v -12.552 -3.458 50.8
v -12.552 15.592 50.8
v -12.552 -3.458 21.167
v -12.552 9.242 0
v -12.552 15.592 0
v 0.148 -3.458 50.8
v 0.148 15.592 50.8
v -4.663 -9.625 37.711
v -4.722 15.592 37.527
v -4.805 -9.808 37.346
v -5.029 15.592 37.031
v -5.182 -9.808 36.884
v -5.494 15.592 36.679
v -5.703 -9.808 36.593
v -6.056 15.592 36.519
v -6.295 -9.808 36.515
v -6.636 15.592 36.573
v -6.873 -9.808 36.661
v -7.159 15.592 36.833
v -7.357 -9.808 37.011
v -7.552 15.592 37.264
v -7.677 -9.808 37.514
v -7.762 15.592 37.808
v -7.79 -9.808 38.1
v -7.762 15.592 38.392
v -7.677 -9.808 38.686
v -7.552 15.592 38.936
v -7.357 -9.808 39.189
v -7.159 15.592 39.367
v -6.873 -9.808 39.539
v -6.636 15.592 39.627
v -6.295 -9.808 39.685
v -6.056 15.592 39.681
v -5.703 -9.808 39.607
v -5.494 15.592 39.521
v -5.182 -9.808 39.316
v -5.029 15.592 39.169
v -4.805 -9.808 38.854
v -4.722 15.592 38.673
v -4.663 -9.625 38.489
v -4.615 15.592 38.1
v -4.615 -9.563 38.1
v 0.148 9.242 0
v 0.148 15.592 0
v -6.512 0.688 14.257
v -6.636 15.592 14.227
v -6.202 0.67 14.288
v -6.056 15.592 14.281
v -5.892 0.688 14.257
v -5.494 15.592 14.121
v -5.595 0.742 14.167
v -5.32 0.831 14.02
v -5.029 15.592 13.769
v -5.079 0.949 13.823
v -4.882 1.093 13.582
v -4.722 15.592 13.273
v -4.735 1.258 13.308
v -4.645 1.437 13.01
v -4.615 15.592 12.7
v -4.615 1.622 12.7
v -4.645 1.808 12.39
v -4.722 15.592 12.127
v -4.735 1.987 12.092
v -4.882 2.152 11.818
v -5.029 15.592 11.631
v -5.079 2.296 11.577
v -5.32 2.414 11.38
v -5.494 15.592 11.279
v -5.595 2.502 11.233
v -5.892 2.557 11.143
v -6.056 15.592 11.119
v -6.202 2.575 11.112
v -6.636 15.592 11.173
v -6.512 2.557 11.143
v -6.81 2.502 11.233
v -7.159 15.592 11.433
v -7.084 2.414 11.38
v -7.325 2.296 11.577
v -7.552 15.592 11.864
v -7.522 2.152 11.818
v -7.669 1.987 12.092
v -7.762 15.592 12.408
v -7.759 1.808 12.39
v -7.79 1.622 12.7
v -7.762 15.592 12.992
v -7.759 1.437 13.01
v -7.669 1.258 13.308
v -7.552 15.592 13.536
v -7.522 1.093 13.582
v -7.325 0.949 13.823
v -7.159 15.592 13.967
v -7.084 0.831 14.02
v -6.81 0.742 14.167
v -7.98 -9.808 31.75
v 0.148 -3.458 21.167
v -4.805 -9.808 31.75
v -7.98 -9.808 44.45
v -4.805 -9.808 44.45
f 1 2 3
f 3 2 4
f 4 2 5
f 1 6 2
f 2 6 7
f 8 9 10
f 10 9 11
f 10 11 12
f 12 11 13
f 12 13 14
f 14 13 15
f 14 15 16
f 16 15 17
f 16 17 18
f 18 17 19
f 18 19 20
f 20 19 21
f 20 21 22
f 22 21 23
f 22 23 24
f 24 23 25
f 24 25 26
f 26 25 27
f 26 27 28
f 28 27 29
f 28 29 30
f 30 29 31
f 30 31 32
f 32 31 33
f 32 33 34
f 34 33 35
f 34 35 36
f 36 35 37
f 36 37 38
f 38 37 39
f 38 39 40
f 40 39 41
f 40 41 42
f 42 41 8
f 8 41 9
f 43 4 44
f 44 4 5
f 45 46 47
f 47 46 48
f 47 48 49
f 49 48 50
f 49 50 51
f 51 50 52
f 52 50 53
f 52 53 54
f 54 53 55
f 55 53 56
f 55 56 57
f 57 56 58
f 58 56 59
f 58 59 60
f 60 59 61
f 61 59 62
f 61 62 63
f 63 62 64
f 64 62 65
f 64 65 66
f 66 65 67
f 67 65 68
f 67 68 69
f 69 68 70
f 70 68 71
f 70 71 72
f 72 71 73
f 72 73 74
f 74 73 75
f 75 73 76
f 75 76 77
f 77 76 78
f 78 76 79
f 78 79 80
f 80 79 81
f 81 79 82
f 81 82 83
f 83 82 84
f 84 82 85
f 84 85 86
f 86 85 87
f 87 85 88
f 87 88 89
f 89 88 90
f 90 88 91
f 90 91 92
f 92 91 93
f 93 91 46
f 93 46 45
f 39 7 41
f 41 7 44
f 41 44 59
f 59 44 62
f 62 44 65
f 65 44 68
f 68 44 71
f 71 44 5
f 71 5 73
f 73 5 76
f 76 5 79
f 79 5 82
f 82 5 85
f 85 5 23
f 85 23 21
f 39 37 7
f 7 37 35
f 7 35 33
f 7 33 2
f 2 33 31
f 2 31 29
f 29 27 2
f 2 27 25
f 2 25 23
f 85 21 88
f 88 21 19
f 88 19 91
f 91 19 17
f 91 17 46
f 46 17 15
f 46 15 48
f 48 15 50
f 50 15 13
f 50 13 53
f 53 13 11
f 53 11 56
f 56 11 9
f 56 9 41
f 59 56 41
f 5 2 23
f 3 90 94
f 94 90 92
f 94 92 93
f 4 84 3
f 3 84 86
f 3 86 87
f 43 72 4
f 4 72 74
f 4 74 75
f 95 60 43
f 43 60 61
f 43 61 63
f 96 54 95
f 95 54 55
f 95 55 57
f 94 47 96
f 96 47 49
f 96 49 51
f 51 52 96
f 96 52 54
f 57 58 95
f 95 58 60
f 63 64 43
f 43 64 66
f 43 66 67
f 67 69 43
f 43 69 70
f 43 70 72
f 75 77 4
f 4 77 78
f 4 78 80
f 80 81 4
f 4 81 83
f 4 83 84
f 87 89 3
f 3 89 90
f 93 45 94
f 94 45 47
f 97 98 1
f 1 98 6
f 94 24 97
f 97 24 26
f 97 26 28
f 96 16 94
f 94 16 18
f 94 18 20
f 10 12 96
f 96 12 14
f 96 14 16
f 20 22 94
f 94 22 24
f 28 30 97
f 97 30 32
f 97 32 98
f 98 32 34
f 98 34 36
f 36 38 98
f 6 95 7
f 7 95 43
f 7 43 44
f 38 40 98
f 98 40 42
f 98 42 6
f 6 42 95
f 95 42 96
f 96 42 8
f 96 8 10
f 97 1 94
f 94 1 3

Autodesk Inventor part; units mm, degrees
ref_plane "YZ Plane" through (0, 0, 0) normal (1, 0, 0) x (0, 1, 0)
ref_plane "XZ Plane" through (0, 0, 0) normal (0, 1, 0) x (-1, 0, 0)
ref_plane "XY Plane" through (0, 0, 0) normal (0, 0, 1) x (1, 0, 0)
sketch "Sketch1" plane through (0, 0, 0) normal (0, 0, 1) x (1, 0, 0)
  line L0 (-12.552, 15.5925) -> (0.148, 15.5925)
  line L1 (0.148, 15.5925) -> (0.148, -9.8075)
  line L2 (0.148, -9.8075) -> (-12.552, -9.8075)
  line L3 (-12.552, -9.8075) -> (-12.552, 15.5925)
  point P0 (0, 0)
  dimension "d0" = 12.7
  dimension "d1" = 25.4
extrude "Extrusion1" add sketch "Sketch1" along normal blind 50.8
sketch "Sketch2" plane through (-12.552, 15.5925, 0) normal (0, 1, 0) x (1, 0, 0)
  line L0 (12.7, -50.8) -> (0, -50.8) projected
  line L1 (12.7, 0) -> (12.7, -50.8) projected
  point P0 (12.552, 0)
  point P1 (6.35, -38.1)
  point P2 (6.35, -12.7)
  dimension "d4" = 25.4
  dimension "d5" = 12.7
  dimension "d6" = 0
  dimension "d7" = 6.35
hole "Hole1" at (-6.202, 15.5925, 38.1) at (-6.202, 15.5925, 12.7) direction (0, -1, 0) diameter 3.175 end through all
sketch "Sketch3" plane through (0.148, -9.8075, 0) normal (1, 0, 0) x (0, 0, -1)
  line L0 (0, 0) -> (-50.8, 0) projected
  line L1 (0, 25.4) -> (-50.8, 25.4) projected
  line L2 (-50.8, 25.4) -> (0, 25.4)
  line L3 (0, 19.05) -> (-31.75, 0)
  line L4 (-31.75, 0) -> (-44.45, 0)
  line L5 (0, 0) -> (-50.8, 0) projected
  line L6 (-44.45, 0) -> (-50.8, 6.35)
  line L7 (-50.8, 0) -> (-44.3921, -0.0579)
  line L8 (-31.75, 0) -> (0, 0)
  line L9 (0, 19.05) -> (0, 0)
  line L10 (-50.8, 25.4) -> (-50.8, 0) projected
  line L11 (-50.8, 6.35) -> (-50.8, 0)
  point P0 (0, 9.8075)
  dimension "d18" = 12.7
  dimension "d19" = 19.05
  dimension "d20" = 6.35
extrude "Extrusion2" cut sketch "Sketch3" against normal blind 50.8
sketch "Sketch4" plane through (0, 0, 50.8) normal (0, 0, 1) x (1, 0, 0)
  line L0 (0.148, -9.8075) -> (-12.552, -9.8075) projected
  line L1 (-12.552, -9.8075) -> (-12.552, -3.4575) projected
  line L2 (0.148, -3.4575) -> (0.148, -9.8075) projected
  line L3 (-12.552, -3.4575) -> (0.148, -3.4575) projected
  line L4 (-12.552, -9.8075) -> (0.148, -9.8075) projected
  line L5 (-7.98, -9.8075) -> (-12.552, -9.8075)
  line L6 (-12.552, -9.8075) -> (-12.552, -3.4575)
  line L7 (-7.98, -9.8075) -> (-12.552, -3.4575)
  line L8 (0.148, -9.8075) -> (-4.805, -9.8075)
  line L9 (-4.805, -9.8075) -> (0.148, -3.4575)
  line L10 (0.148, -9.8075) -> (0.148, 9.2425) projected
  line L11 (0.148, -3.4575) -> (0.148, -9.8075)
  point P0 (0, 0)
  dimension "d23" = 3.175
  dimension "d24" = 4.572
  dimension "d25" = 4.953
extrude "Extrusion3" cut sketch "Sketch4" against normal blind 50.8 contours L0 L9 L2 | L0 L1 L7
properties part number "Slider"
